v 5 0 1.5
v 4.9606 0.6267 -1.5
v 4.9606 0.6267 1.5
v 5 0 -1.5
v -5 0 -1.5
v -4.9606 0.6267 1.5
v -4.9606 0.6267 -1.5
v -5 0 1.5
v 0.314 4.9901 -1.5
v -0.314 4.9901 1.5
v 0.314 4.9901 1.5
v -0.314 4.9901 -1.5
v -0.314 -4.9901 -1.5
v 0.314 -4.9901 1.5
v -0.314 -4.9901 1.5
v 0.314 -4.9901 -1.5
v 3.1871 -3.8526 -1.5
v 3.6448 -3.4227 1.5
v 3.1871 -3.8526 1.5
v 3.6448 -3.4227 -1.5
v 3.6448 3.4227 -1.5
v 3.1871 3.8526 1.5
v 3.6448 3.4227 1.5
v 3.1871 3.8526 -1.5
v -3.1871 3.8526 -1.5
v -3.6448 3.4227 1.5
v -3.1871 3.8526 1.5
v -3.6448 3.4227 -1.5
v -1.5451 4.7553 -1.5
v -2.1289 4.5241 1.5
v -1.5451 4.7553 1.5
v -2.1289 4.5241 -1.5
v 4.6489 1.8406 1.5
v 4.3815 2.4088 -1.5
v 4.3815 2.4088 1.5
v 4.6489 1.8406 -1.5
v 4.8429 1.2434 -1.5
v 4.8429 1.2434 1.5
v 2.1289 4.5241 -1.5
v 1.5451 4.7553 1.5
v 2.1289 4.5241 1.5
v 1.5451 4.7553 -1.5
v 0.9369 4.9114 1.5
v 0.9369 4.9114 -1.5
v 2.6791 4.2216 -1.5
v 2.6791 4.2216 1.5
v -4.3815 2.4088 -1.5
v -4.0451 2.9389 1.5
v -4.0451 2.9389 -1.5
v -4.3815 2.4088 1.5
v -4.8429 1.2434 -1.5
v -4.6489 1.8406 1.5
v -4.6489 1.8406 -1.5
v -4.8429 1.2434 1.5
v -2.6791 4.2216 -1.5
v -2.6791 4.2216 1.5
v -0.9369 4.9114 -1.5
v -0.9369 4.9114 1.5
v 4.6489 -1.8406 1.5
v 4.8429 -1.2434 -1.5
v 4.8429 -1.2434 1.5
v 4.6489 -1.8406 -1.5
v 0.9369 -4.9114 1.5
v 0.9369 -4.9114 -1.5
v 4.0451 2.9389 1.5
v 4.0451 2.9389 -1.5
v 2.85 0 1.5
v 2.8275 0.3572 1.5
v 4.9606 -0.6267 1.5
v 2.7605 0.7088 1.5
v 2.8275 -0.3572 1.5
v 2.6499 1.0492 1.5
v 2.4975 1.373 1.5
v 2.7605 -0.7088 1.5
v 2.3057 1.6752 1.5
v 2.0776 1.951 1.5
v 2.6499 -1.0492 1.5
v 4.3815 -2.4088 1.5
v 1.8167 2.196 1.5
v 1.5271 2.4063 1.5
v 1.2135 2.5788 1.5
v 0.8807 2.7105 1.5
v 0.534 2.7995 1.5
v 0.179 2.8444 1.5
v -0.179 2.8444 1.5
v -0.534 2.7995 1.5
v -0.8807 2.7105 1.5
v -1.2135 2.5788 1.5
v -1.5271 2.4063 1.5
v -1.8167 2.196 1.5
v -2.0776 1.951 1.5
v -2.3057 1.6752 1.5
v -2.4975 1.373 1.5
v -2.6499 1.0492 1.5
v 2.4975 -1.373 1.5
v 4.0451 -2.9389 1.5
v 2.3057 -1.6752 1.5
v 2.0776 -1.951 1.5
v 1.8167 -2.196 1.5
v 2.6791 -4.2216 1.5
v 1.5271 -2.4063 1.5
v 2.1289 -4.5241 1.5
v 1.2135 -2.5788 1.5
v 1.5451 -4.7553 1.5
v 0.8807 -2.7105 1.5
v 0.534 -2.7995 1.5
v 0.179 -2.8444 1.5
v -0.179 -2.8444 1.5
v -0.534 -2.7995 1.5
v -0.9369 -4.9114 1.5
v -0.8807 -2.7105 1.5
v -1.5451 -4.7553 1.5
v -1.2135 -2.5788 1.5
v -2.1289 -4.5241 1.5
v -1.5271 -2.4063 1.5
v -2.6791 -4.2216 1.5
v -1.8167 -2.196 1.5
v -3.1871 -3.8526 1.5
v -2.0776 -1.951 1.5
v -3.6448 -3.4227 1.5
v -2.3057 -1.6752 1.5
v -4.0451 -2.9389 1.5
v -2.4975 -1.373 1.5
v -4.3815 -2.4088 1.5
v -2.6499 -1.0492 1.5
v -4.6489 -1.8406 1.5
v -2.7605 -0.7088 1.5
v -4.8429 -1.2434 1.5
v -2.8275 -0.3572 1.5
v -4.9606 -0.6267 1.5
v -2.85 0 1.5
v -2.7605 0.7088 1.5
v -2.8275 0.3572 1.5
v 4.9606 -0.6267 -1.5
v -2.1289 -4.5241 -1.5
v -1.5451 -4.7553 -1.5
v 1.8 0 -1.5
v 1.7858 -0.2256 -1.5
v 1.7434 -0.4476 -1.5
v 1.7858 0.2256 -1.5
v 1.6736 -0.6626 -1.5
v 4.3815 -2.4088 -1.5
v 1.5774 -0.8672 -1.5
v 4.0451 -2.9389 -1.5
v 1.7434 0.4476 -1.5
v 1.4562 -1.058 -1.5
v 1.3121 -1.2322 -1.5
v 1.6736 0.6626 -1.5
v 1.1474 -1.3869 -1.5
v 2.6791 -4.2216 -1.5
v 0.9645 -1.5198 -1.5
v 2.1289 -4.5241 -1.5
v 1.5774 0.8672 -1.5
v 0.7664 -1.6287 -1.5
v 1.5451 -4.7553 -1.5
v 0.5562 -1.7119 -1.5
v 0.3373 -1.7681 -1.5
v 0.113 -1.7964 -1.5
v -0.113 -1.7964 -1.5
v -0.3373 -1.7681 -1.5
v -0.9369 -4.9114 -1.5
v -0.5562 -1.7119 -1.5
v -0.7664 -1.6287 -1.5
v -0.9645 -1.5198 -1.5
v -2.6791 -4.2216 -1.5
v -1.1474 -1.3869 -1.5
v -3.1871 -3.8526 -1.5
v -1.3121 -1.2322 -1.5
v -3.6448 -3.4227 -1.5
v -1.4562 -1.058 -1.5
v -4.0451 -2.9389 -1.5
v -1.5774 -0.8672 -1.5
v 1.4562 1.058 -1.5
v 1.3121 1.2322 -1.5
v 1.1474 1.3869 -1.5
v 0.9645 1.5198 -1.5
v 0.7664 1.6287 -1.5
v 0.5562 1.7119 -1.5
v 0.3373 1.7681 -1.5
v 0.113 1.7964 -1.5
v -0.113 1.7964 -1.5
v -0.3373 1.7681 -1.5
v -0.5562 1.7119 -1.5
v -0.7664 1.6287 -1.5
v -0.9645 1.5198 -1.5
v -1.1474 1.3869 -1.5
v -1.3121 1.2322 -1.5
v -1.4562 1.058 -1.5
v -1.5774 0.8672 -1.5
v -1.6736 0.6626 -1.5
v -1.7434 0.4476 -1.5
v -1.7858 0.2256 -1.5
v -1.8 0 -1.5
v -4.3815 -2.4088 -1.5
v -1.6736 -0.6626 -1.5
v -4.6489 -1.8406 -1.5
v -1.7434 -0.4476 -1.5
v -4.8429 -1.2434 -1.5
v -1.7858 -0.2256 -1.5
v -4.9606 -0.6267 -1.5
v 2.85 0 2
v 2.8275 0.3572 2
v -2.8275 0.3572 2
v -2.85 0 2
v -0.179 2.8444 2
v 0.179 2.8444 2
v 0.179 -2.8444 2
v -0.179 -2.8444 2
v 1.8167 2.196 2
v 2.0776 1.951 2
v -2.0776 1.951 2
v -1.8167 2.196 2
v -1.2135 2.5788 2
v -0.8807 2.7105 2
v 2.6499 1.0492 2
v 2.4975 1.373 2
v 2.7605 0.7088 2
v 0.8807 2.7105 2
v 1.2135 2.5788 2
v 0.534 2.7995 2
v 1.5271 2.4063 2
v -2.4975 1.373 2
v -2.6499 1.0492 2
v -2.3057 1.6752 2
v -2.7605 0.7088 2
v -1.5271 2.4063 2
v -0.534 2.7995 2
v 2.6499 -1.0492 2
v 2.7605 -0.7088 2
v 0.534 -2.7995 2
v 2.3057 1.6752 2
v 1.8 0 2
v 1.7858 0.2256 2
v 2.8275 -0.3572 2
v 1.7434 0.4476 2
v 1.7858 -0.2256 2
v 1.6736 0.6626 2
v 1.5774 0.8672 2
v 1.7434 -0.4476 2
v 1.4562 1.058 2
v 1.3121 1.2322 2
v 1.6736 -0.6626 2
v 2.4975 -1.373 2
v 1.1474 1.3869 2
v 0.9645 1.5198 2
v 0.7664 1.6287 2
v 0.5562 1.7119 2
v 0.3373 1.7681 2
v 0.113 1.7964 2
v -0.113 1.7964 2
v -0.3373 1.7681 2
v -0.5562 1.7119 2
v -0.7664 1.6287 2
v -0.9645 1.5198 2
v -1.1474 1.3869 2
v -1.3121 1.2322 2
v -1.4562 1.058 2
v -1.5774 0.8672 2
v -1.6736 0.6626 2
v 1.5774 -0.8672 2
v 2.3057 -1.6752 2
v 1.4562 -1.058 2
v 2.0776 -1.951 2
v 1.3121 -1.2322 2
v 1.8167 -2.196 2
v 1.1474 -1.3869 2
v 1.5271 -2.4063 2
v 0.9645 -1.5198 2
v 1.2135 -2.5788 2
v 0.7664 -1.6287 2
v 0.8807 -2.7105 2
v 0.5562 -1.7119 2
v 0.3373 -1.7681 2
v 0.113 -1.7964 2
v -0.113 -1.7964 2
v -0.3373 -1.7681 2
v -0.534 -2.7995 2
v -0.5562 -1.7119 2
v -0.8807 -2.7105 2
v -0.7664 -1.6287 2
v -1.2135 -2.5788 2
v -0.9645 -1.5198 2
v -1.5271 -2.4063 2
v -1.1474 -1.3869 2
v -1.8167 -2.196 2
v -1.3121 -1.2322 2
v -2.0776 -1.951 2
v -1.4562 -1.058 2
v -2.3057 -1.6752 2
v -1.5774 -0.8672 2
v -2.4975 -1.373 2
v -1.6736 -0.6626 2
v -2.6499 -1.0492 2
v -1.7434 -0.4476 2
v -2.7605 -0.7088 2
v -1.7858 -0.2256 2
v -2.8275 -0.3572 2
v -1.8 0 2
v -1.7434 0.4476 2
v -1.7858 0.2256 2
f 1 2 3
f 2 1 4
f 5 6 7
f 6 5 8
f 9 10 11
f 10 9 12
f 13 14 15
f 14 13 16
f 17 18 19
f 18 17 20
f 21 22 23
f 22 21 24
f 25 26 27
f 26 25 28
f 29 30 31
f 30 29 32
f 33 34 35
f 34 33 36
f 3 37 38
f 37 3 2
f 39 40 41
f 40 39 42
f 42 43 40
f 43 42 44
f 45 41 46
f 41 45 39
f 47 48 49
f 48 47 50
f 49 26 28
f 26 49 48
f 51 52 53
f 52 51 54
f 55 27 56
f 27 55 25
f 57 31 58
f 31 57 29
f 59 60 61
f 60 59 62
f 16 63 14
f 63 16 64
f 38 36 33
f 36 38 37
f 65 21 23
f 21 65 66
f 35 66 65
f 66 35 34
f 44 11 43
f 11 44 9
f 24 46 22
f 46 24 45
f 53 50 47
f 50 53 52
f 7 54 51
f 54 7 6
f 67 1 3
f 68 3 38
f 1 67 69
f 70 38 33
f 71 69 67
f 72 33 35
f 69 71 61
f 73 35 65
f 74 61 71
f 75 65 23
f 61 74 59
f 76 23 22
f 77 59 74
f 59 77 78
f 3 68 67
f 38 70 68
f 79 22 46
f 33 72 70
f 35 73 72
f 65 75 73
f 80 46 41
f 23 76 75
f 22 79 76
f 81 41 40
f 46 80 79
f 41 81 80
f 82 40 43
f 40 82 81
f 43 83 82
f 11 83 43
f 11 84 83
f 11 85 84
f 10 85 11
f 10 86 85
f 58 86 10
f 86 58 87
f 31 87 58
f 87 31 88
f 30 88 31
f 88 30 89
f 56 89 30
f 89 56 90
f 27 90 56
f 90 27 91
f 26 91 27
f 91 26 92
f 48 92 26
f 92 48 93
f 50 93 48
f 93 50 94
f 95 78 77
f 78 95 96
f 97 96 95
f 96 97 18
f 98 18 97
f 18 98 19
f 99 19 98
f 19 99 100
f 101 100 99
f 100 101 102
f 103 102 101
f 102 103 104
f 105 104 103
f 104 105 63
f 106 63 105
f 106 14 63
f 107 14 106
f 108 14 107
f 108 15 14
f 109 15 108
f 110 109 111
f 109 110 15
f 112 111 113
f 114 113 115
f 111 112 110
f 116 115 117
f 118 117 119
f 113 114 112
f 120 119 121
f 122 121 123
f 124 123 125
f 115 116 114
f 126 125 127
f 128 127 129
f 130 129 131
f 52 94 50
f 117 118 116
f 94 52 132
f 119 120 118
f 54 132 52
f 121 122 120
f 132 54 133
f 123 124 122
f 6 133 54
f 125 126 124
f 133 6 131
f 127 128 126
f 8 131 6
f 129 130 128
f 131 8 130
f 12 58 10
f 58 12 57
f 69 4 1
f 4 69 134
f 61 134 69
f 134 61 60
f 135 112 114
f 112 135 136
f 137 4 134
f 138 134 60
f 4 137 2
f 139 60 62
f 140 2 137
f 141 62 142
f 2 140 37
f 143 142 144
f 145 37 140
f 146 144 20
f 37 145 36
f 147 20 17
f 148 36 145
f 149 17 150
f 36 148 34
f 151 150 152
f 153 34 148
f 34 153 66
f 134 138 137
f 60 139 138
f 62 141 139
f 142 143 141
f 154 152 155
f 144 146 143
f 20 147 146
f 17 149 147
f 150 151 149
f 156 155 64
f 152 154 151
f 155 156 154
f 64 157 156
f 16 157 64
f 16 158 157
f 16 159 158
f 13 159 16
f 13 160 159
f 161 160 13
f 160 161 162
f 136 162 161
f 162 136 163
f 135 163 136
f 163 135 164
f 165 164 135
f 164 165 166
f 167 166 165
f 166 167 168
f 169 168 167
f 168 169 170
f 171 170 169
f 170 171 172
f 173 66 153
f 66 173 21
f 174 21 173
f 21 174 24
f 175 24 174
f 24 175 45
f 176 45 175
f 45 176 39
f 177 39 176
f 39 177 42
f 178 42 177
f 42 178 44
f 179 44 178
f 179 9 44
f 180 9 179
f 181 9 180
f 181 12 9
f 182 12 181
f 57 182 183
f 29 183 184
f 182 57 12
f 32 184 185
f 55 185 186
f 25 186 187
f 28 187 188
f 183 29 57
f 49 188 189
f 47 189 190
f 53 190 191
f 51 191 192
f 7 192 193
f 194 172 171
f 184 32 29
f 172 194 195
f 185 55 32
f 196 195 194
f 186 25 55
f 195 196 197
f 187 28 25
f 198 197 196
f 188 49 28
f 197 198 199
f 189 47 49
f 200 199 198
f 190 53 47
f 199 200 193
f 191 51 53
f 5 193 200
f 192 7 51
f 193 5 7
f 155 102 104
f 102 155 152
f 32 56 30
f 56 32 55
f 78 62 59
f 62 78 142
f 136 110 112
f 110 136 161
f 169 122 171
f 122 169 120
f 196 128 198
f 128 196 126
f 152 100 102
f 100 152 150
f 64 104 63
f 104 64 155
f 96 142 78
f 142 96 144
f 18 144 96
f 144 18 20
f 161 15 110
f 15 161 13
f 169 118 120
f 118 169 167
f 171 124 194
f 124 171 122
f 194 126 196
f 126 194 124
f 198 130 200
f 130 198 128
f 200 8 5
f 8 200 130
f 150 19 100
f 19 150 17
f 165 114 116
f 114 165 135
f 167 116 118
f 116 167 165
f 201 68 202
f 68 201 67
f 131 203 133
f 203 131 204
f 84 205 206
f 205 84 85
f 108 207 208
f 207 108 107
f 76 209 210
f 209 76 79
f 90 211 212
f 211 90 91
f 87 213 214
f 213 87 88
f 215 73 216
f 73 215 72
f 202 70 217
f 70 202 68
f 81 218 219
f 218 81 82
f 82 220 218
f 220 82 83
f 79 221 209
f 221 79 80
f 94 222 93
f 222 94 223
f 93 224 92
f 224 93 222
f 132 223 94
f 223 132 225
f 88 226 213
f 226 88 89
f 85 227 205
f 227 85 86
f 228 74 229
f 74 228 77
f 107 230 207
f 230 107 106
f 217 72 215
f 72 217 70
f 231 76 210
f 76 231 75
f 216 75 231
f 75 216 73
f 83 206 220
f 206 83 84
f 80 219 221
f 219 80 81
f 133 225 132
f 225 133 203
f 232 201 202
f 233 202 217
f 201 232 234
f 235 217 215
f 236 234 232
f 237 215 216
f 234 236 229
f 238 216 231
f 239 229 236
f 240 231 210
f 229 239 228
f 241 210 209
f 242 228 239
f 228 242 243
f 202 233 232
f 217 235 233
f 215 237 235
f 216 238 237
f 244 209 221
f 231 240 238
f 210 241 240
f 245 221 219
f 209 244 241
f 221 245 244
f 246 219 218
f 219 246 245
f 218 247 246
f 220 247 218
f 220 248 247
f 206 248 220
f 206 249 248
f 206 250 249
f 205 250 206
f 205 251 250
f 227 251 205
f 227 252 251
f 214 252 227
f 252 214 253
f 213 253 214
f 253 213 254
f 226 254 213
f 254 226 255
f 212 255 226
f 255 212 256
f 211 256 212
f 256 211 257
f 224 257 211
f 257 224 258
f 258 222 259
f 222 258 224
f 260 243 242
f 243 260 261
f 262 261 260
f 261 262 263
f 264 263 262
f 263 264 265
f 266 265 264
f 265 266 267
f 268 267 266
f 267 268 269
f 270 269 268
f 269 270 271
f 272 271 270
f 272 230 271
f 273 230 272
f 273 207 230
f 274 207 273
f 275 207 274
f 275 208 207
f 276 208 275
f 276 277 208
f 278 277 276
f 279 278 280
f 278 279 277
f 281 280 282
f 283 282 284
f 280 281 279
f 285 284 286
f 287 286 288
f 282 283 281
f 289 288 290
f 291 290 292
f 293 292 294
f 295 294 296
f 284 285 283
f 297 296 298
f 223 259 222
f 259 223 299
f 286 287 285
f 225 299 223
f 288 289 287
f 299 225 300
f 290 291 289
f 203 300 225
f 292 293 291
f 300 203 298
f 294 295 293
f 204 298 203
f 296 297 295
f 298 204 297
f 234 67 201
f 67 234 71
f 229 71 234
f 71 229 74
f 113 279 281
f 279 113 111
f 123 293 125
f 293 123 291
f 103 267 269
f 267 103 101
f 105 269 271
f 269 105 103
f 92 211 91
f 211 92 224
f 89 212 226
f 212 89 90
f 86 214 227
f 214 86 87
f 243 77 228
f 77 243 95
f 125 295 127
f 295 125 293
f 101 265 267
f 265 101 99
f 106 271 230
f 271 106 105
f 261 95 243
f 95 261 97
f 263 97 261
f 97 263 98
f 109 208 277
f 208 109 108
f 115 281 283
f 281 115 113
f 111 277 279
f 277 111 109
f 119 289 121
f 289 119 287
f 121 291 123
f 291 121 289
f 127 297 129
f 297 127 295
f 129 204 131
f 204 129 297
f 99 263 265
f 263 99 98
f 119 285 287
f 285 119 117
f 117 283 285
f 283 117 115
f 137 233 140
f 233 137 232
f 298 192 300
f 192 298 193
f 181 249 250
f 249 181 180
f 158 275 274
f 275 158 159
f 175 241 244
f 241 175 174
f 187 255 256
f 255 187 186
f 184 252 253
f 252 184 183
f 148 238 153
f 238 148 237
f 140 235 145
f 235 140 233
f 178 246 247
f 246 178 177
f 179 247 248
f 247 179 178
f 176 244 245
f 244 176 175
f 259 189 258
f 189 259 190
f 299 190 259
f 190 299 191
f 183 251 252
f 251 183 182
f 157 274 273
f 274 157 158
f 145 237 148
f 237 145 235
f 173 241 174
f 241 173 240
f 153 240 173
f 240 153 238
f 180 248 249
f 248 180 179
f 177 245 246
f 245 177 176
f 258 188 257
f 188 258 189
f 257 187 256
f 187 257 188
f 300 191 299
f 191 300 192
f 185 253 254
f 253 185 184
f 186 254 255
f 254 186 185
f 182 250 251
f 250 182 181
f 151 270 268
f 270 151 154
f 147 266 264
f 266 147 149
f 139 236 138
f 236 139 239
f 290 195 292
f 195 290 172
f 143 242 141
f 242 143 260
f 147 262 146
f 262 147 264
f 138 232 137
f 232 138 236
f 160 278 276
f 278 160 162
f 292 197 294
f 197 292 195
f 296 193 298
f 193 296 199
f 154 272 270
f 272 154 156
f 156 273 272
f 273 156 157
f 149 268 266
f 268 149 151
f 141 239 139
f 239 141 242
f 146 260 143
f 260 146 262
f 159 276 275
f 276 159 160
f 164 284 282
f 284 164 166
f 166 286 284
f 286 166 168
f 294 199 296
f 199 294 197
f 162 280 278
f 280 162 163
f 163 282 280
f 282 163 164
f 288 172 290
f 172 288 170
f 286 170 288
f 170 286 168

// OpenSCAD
$fn = 50;


difference() {
	union() {
		translate(v = [0, 0, -1.5000000000]) {
			rotate(a = [0, 0, 0]) {
				cylinder(h = 3, r = 5.0000000000);
			}
		}
		translate(v = [0, 0, -1.5000000000]) {
			rotate(a = [0, 0, 0]) {
				cylinder(h = 3.5000000000, r = 2.8500000000);
			}
		}
	}
	union() {
		translate(v = [0, 0, -125.0000000000]) {
			rotate(a = [0, 0, 0]) {
				cylinder(h = 250, r = 1.8000000000);
			}
		}
	}
}
